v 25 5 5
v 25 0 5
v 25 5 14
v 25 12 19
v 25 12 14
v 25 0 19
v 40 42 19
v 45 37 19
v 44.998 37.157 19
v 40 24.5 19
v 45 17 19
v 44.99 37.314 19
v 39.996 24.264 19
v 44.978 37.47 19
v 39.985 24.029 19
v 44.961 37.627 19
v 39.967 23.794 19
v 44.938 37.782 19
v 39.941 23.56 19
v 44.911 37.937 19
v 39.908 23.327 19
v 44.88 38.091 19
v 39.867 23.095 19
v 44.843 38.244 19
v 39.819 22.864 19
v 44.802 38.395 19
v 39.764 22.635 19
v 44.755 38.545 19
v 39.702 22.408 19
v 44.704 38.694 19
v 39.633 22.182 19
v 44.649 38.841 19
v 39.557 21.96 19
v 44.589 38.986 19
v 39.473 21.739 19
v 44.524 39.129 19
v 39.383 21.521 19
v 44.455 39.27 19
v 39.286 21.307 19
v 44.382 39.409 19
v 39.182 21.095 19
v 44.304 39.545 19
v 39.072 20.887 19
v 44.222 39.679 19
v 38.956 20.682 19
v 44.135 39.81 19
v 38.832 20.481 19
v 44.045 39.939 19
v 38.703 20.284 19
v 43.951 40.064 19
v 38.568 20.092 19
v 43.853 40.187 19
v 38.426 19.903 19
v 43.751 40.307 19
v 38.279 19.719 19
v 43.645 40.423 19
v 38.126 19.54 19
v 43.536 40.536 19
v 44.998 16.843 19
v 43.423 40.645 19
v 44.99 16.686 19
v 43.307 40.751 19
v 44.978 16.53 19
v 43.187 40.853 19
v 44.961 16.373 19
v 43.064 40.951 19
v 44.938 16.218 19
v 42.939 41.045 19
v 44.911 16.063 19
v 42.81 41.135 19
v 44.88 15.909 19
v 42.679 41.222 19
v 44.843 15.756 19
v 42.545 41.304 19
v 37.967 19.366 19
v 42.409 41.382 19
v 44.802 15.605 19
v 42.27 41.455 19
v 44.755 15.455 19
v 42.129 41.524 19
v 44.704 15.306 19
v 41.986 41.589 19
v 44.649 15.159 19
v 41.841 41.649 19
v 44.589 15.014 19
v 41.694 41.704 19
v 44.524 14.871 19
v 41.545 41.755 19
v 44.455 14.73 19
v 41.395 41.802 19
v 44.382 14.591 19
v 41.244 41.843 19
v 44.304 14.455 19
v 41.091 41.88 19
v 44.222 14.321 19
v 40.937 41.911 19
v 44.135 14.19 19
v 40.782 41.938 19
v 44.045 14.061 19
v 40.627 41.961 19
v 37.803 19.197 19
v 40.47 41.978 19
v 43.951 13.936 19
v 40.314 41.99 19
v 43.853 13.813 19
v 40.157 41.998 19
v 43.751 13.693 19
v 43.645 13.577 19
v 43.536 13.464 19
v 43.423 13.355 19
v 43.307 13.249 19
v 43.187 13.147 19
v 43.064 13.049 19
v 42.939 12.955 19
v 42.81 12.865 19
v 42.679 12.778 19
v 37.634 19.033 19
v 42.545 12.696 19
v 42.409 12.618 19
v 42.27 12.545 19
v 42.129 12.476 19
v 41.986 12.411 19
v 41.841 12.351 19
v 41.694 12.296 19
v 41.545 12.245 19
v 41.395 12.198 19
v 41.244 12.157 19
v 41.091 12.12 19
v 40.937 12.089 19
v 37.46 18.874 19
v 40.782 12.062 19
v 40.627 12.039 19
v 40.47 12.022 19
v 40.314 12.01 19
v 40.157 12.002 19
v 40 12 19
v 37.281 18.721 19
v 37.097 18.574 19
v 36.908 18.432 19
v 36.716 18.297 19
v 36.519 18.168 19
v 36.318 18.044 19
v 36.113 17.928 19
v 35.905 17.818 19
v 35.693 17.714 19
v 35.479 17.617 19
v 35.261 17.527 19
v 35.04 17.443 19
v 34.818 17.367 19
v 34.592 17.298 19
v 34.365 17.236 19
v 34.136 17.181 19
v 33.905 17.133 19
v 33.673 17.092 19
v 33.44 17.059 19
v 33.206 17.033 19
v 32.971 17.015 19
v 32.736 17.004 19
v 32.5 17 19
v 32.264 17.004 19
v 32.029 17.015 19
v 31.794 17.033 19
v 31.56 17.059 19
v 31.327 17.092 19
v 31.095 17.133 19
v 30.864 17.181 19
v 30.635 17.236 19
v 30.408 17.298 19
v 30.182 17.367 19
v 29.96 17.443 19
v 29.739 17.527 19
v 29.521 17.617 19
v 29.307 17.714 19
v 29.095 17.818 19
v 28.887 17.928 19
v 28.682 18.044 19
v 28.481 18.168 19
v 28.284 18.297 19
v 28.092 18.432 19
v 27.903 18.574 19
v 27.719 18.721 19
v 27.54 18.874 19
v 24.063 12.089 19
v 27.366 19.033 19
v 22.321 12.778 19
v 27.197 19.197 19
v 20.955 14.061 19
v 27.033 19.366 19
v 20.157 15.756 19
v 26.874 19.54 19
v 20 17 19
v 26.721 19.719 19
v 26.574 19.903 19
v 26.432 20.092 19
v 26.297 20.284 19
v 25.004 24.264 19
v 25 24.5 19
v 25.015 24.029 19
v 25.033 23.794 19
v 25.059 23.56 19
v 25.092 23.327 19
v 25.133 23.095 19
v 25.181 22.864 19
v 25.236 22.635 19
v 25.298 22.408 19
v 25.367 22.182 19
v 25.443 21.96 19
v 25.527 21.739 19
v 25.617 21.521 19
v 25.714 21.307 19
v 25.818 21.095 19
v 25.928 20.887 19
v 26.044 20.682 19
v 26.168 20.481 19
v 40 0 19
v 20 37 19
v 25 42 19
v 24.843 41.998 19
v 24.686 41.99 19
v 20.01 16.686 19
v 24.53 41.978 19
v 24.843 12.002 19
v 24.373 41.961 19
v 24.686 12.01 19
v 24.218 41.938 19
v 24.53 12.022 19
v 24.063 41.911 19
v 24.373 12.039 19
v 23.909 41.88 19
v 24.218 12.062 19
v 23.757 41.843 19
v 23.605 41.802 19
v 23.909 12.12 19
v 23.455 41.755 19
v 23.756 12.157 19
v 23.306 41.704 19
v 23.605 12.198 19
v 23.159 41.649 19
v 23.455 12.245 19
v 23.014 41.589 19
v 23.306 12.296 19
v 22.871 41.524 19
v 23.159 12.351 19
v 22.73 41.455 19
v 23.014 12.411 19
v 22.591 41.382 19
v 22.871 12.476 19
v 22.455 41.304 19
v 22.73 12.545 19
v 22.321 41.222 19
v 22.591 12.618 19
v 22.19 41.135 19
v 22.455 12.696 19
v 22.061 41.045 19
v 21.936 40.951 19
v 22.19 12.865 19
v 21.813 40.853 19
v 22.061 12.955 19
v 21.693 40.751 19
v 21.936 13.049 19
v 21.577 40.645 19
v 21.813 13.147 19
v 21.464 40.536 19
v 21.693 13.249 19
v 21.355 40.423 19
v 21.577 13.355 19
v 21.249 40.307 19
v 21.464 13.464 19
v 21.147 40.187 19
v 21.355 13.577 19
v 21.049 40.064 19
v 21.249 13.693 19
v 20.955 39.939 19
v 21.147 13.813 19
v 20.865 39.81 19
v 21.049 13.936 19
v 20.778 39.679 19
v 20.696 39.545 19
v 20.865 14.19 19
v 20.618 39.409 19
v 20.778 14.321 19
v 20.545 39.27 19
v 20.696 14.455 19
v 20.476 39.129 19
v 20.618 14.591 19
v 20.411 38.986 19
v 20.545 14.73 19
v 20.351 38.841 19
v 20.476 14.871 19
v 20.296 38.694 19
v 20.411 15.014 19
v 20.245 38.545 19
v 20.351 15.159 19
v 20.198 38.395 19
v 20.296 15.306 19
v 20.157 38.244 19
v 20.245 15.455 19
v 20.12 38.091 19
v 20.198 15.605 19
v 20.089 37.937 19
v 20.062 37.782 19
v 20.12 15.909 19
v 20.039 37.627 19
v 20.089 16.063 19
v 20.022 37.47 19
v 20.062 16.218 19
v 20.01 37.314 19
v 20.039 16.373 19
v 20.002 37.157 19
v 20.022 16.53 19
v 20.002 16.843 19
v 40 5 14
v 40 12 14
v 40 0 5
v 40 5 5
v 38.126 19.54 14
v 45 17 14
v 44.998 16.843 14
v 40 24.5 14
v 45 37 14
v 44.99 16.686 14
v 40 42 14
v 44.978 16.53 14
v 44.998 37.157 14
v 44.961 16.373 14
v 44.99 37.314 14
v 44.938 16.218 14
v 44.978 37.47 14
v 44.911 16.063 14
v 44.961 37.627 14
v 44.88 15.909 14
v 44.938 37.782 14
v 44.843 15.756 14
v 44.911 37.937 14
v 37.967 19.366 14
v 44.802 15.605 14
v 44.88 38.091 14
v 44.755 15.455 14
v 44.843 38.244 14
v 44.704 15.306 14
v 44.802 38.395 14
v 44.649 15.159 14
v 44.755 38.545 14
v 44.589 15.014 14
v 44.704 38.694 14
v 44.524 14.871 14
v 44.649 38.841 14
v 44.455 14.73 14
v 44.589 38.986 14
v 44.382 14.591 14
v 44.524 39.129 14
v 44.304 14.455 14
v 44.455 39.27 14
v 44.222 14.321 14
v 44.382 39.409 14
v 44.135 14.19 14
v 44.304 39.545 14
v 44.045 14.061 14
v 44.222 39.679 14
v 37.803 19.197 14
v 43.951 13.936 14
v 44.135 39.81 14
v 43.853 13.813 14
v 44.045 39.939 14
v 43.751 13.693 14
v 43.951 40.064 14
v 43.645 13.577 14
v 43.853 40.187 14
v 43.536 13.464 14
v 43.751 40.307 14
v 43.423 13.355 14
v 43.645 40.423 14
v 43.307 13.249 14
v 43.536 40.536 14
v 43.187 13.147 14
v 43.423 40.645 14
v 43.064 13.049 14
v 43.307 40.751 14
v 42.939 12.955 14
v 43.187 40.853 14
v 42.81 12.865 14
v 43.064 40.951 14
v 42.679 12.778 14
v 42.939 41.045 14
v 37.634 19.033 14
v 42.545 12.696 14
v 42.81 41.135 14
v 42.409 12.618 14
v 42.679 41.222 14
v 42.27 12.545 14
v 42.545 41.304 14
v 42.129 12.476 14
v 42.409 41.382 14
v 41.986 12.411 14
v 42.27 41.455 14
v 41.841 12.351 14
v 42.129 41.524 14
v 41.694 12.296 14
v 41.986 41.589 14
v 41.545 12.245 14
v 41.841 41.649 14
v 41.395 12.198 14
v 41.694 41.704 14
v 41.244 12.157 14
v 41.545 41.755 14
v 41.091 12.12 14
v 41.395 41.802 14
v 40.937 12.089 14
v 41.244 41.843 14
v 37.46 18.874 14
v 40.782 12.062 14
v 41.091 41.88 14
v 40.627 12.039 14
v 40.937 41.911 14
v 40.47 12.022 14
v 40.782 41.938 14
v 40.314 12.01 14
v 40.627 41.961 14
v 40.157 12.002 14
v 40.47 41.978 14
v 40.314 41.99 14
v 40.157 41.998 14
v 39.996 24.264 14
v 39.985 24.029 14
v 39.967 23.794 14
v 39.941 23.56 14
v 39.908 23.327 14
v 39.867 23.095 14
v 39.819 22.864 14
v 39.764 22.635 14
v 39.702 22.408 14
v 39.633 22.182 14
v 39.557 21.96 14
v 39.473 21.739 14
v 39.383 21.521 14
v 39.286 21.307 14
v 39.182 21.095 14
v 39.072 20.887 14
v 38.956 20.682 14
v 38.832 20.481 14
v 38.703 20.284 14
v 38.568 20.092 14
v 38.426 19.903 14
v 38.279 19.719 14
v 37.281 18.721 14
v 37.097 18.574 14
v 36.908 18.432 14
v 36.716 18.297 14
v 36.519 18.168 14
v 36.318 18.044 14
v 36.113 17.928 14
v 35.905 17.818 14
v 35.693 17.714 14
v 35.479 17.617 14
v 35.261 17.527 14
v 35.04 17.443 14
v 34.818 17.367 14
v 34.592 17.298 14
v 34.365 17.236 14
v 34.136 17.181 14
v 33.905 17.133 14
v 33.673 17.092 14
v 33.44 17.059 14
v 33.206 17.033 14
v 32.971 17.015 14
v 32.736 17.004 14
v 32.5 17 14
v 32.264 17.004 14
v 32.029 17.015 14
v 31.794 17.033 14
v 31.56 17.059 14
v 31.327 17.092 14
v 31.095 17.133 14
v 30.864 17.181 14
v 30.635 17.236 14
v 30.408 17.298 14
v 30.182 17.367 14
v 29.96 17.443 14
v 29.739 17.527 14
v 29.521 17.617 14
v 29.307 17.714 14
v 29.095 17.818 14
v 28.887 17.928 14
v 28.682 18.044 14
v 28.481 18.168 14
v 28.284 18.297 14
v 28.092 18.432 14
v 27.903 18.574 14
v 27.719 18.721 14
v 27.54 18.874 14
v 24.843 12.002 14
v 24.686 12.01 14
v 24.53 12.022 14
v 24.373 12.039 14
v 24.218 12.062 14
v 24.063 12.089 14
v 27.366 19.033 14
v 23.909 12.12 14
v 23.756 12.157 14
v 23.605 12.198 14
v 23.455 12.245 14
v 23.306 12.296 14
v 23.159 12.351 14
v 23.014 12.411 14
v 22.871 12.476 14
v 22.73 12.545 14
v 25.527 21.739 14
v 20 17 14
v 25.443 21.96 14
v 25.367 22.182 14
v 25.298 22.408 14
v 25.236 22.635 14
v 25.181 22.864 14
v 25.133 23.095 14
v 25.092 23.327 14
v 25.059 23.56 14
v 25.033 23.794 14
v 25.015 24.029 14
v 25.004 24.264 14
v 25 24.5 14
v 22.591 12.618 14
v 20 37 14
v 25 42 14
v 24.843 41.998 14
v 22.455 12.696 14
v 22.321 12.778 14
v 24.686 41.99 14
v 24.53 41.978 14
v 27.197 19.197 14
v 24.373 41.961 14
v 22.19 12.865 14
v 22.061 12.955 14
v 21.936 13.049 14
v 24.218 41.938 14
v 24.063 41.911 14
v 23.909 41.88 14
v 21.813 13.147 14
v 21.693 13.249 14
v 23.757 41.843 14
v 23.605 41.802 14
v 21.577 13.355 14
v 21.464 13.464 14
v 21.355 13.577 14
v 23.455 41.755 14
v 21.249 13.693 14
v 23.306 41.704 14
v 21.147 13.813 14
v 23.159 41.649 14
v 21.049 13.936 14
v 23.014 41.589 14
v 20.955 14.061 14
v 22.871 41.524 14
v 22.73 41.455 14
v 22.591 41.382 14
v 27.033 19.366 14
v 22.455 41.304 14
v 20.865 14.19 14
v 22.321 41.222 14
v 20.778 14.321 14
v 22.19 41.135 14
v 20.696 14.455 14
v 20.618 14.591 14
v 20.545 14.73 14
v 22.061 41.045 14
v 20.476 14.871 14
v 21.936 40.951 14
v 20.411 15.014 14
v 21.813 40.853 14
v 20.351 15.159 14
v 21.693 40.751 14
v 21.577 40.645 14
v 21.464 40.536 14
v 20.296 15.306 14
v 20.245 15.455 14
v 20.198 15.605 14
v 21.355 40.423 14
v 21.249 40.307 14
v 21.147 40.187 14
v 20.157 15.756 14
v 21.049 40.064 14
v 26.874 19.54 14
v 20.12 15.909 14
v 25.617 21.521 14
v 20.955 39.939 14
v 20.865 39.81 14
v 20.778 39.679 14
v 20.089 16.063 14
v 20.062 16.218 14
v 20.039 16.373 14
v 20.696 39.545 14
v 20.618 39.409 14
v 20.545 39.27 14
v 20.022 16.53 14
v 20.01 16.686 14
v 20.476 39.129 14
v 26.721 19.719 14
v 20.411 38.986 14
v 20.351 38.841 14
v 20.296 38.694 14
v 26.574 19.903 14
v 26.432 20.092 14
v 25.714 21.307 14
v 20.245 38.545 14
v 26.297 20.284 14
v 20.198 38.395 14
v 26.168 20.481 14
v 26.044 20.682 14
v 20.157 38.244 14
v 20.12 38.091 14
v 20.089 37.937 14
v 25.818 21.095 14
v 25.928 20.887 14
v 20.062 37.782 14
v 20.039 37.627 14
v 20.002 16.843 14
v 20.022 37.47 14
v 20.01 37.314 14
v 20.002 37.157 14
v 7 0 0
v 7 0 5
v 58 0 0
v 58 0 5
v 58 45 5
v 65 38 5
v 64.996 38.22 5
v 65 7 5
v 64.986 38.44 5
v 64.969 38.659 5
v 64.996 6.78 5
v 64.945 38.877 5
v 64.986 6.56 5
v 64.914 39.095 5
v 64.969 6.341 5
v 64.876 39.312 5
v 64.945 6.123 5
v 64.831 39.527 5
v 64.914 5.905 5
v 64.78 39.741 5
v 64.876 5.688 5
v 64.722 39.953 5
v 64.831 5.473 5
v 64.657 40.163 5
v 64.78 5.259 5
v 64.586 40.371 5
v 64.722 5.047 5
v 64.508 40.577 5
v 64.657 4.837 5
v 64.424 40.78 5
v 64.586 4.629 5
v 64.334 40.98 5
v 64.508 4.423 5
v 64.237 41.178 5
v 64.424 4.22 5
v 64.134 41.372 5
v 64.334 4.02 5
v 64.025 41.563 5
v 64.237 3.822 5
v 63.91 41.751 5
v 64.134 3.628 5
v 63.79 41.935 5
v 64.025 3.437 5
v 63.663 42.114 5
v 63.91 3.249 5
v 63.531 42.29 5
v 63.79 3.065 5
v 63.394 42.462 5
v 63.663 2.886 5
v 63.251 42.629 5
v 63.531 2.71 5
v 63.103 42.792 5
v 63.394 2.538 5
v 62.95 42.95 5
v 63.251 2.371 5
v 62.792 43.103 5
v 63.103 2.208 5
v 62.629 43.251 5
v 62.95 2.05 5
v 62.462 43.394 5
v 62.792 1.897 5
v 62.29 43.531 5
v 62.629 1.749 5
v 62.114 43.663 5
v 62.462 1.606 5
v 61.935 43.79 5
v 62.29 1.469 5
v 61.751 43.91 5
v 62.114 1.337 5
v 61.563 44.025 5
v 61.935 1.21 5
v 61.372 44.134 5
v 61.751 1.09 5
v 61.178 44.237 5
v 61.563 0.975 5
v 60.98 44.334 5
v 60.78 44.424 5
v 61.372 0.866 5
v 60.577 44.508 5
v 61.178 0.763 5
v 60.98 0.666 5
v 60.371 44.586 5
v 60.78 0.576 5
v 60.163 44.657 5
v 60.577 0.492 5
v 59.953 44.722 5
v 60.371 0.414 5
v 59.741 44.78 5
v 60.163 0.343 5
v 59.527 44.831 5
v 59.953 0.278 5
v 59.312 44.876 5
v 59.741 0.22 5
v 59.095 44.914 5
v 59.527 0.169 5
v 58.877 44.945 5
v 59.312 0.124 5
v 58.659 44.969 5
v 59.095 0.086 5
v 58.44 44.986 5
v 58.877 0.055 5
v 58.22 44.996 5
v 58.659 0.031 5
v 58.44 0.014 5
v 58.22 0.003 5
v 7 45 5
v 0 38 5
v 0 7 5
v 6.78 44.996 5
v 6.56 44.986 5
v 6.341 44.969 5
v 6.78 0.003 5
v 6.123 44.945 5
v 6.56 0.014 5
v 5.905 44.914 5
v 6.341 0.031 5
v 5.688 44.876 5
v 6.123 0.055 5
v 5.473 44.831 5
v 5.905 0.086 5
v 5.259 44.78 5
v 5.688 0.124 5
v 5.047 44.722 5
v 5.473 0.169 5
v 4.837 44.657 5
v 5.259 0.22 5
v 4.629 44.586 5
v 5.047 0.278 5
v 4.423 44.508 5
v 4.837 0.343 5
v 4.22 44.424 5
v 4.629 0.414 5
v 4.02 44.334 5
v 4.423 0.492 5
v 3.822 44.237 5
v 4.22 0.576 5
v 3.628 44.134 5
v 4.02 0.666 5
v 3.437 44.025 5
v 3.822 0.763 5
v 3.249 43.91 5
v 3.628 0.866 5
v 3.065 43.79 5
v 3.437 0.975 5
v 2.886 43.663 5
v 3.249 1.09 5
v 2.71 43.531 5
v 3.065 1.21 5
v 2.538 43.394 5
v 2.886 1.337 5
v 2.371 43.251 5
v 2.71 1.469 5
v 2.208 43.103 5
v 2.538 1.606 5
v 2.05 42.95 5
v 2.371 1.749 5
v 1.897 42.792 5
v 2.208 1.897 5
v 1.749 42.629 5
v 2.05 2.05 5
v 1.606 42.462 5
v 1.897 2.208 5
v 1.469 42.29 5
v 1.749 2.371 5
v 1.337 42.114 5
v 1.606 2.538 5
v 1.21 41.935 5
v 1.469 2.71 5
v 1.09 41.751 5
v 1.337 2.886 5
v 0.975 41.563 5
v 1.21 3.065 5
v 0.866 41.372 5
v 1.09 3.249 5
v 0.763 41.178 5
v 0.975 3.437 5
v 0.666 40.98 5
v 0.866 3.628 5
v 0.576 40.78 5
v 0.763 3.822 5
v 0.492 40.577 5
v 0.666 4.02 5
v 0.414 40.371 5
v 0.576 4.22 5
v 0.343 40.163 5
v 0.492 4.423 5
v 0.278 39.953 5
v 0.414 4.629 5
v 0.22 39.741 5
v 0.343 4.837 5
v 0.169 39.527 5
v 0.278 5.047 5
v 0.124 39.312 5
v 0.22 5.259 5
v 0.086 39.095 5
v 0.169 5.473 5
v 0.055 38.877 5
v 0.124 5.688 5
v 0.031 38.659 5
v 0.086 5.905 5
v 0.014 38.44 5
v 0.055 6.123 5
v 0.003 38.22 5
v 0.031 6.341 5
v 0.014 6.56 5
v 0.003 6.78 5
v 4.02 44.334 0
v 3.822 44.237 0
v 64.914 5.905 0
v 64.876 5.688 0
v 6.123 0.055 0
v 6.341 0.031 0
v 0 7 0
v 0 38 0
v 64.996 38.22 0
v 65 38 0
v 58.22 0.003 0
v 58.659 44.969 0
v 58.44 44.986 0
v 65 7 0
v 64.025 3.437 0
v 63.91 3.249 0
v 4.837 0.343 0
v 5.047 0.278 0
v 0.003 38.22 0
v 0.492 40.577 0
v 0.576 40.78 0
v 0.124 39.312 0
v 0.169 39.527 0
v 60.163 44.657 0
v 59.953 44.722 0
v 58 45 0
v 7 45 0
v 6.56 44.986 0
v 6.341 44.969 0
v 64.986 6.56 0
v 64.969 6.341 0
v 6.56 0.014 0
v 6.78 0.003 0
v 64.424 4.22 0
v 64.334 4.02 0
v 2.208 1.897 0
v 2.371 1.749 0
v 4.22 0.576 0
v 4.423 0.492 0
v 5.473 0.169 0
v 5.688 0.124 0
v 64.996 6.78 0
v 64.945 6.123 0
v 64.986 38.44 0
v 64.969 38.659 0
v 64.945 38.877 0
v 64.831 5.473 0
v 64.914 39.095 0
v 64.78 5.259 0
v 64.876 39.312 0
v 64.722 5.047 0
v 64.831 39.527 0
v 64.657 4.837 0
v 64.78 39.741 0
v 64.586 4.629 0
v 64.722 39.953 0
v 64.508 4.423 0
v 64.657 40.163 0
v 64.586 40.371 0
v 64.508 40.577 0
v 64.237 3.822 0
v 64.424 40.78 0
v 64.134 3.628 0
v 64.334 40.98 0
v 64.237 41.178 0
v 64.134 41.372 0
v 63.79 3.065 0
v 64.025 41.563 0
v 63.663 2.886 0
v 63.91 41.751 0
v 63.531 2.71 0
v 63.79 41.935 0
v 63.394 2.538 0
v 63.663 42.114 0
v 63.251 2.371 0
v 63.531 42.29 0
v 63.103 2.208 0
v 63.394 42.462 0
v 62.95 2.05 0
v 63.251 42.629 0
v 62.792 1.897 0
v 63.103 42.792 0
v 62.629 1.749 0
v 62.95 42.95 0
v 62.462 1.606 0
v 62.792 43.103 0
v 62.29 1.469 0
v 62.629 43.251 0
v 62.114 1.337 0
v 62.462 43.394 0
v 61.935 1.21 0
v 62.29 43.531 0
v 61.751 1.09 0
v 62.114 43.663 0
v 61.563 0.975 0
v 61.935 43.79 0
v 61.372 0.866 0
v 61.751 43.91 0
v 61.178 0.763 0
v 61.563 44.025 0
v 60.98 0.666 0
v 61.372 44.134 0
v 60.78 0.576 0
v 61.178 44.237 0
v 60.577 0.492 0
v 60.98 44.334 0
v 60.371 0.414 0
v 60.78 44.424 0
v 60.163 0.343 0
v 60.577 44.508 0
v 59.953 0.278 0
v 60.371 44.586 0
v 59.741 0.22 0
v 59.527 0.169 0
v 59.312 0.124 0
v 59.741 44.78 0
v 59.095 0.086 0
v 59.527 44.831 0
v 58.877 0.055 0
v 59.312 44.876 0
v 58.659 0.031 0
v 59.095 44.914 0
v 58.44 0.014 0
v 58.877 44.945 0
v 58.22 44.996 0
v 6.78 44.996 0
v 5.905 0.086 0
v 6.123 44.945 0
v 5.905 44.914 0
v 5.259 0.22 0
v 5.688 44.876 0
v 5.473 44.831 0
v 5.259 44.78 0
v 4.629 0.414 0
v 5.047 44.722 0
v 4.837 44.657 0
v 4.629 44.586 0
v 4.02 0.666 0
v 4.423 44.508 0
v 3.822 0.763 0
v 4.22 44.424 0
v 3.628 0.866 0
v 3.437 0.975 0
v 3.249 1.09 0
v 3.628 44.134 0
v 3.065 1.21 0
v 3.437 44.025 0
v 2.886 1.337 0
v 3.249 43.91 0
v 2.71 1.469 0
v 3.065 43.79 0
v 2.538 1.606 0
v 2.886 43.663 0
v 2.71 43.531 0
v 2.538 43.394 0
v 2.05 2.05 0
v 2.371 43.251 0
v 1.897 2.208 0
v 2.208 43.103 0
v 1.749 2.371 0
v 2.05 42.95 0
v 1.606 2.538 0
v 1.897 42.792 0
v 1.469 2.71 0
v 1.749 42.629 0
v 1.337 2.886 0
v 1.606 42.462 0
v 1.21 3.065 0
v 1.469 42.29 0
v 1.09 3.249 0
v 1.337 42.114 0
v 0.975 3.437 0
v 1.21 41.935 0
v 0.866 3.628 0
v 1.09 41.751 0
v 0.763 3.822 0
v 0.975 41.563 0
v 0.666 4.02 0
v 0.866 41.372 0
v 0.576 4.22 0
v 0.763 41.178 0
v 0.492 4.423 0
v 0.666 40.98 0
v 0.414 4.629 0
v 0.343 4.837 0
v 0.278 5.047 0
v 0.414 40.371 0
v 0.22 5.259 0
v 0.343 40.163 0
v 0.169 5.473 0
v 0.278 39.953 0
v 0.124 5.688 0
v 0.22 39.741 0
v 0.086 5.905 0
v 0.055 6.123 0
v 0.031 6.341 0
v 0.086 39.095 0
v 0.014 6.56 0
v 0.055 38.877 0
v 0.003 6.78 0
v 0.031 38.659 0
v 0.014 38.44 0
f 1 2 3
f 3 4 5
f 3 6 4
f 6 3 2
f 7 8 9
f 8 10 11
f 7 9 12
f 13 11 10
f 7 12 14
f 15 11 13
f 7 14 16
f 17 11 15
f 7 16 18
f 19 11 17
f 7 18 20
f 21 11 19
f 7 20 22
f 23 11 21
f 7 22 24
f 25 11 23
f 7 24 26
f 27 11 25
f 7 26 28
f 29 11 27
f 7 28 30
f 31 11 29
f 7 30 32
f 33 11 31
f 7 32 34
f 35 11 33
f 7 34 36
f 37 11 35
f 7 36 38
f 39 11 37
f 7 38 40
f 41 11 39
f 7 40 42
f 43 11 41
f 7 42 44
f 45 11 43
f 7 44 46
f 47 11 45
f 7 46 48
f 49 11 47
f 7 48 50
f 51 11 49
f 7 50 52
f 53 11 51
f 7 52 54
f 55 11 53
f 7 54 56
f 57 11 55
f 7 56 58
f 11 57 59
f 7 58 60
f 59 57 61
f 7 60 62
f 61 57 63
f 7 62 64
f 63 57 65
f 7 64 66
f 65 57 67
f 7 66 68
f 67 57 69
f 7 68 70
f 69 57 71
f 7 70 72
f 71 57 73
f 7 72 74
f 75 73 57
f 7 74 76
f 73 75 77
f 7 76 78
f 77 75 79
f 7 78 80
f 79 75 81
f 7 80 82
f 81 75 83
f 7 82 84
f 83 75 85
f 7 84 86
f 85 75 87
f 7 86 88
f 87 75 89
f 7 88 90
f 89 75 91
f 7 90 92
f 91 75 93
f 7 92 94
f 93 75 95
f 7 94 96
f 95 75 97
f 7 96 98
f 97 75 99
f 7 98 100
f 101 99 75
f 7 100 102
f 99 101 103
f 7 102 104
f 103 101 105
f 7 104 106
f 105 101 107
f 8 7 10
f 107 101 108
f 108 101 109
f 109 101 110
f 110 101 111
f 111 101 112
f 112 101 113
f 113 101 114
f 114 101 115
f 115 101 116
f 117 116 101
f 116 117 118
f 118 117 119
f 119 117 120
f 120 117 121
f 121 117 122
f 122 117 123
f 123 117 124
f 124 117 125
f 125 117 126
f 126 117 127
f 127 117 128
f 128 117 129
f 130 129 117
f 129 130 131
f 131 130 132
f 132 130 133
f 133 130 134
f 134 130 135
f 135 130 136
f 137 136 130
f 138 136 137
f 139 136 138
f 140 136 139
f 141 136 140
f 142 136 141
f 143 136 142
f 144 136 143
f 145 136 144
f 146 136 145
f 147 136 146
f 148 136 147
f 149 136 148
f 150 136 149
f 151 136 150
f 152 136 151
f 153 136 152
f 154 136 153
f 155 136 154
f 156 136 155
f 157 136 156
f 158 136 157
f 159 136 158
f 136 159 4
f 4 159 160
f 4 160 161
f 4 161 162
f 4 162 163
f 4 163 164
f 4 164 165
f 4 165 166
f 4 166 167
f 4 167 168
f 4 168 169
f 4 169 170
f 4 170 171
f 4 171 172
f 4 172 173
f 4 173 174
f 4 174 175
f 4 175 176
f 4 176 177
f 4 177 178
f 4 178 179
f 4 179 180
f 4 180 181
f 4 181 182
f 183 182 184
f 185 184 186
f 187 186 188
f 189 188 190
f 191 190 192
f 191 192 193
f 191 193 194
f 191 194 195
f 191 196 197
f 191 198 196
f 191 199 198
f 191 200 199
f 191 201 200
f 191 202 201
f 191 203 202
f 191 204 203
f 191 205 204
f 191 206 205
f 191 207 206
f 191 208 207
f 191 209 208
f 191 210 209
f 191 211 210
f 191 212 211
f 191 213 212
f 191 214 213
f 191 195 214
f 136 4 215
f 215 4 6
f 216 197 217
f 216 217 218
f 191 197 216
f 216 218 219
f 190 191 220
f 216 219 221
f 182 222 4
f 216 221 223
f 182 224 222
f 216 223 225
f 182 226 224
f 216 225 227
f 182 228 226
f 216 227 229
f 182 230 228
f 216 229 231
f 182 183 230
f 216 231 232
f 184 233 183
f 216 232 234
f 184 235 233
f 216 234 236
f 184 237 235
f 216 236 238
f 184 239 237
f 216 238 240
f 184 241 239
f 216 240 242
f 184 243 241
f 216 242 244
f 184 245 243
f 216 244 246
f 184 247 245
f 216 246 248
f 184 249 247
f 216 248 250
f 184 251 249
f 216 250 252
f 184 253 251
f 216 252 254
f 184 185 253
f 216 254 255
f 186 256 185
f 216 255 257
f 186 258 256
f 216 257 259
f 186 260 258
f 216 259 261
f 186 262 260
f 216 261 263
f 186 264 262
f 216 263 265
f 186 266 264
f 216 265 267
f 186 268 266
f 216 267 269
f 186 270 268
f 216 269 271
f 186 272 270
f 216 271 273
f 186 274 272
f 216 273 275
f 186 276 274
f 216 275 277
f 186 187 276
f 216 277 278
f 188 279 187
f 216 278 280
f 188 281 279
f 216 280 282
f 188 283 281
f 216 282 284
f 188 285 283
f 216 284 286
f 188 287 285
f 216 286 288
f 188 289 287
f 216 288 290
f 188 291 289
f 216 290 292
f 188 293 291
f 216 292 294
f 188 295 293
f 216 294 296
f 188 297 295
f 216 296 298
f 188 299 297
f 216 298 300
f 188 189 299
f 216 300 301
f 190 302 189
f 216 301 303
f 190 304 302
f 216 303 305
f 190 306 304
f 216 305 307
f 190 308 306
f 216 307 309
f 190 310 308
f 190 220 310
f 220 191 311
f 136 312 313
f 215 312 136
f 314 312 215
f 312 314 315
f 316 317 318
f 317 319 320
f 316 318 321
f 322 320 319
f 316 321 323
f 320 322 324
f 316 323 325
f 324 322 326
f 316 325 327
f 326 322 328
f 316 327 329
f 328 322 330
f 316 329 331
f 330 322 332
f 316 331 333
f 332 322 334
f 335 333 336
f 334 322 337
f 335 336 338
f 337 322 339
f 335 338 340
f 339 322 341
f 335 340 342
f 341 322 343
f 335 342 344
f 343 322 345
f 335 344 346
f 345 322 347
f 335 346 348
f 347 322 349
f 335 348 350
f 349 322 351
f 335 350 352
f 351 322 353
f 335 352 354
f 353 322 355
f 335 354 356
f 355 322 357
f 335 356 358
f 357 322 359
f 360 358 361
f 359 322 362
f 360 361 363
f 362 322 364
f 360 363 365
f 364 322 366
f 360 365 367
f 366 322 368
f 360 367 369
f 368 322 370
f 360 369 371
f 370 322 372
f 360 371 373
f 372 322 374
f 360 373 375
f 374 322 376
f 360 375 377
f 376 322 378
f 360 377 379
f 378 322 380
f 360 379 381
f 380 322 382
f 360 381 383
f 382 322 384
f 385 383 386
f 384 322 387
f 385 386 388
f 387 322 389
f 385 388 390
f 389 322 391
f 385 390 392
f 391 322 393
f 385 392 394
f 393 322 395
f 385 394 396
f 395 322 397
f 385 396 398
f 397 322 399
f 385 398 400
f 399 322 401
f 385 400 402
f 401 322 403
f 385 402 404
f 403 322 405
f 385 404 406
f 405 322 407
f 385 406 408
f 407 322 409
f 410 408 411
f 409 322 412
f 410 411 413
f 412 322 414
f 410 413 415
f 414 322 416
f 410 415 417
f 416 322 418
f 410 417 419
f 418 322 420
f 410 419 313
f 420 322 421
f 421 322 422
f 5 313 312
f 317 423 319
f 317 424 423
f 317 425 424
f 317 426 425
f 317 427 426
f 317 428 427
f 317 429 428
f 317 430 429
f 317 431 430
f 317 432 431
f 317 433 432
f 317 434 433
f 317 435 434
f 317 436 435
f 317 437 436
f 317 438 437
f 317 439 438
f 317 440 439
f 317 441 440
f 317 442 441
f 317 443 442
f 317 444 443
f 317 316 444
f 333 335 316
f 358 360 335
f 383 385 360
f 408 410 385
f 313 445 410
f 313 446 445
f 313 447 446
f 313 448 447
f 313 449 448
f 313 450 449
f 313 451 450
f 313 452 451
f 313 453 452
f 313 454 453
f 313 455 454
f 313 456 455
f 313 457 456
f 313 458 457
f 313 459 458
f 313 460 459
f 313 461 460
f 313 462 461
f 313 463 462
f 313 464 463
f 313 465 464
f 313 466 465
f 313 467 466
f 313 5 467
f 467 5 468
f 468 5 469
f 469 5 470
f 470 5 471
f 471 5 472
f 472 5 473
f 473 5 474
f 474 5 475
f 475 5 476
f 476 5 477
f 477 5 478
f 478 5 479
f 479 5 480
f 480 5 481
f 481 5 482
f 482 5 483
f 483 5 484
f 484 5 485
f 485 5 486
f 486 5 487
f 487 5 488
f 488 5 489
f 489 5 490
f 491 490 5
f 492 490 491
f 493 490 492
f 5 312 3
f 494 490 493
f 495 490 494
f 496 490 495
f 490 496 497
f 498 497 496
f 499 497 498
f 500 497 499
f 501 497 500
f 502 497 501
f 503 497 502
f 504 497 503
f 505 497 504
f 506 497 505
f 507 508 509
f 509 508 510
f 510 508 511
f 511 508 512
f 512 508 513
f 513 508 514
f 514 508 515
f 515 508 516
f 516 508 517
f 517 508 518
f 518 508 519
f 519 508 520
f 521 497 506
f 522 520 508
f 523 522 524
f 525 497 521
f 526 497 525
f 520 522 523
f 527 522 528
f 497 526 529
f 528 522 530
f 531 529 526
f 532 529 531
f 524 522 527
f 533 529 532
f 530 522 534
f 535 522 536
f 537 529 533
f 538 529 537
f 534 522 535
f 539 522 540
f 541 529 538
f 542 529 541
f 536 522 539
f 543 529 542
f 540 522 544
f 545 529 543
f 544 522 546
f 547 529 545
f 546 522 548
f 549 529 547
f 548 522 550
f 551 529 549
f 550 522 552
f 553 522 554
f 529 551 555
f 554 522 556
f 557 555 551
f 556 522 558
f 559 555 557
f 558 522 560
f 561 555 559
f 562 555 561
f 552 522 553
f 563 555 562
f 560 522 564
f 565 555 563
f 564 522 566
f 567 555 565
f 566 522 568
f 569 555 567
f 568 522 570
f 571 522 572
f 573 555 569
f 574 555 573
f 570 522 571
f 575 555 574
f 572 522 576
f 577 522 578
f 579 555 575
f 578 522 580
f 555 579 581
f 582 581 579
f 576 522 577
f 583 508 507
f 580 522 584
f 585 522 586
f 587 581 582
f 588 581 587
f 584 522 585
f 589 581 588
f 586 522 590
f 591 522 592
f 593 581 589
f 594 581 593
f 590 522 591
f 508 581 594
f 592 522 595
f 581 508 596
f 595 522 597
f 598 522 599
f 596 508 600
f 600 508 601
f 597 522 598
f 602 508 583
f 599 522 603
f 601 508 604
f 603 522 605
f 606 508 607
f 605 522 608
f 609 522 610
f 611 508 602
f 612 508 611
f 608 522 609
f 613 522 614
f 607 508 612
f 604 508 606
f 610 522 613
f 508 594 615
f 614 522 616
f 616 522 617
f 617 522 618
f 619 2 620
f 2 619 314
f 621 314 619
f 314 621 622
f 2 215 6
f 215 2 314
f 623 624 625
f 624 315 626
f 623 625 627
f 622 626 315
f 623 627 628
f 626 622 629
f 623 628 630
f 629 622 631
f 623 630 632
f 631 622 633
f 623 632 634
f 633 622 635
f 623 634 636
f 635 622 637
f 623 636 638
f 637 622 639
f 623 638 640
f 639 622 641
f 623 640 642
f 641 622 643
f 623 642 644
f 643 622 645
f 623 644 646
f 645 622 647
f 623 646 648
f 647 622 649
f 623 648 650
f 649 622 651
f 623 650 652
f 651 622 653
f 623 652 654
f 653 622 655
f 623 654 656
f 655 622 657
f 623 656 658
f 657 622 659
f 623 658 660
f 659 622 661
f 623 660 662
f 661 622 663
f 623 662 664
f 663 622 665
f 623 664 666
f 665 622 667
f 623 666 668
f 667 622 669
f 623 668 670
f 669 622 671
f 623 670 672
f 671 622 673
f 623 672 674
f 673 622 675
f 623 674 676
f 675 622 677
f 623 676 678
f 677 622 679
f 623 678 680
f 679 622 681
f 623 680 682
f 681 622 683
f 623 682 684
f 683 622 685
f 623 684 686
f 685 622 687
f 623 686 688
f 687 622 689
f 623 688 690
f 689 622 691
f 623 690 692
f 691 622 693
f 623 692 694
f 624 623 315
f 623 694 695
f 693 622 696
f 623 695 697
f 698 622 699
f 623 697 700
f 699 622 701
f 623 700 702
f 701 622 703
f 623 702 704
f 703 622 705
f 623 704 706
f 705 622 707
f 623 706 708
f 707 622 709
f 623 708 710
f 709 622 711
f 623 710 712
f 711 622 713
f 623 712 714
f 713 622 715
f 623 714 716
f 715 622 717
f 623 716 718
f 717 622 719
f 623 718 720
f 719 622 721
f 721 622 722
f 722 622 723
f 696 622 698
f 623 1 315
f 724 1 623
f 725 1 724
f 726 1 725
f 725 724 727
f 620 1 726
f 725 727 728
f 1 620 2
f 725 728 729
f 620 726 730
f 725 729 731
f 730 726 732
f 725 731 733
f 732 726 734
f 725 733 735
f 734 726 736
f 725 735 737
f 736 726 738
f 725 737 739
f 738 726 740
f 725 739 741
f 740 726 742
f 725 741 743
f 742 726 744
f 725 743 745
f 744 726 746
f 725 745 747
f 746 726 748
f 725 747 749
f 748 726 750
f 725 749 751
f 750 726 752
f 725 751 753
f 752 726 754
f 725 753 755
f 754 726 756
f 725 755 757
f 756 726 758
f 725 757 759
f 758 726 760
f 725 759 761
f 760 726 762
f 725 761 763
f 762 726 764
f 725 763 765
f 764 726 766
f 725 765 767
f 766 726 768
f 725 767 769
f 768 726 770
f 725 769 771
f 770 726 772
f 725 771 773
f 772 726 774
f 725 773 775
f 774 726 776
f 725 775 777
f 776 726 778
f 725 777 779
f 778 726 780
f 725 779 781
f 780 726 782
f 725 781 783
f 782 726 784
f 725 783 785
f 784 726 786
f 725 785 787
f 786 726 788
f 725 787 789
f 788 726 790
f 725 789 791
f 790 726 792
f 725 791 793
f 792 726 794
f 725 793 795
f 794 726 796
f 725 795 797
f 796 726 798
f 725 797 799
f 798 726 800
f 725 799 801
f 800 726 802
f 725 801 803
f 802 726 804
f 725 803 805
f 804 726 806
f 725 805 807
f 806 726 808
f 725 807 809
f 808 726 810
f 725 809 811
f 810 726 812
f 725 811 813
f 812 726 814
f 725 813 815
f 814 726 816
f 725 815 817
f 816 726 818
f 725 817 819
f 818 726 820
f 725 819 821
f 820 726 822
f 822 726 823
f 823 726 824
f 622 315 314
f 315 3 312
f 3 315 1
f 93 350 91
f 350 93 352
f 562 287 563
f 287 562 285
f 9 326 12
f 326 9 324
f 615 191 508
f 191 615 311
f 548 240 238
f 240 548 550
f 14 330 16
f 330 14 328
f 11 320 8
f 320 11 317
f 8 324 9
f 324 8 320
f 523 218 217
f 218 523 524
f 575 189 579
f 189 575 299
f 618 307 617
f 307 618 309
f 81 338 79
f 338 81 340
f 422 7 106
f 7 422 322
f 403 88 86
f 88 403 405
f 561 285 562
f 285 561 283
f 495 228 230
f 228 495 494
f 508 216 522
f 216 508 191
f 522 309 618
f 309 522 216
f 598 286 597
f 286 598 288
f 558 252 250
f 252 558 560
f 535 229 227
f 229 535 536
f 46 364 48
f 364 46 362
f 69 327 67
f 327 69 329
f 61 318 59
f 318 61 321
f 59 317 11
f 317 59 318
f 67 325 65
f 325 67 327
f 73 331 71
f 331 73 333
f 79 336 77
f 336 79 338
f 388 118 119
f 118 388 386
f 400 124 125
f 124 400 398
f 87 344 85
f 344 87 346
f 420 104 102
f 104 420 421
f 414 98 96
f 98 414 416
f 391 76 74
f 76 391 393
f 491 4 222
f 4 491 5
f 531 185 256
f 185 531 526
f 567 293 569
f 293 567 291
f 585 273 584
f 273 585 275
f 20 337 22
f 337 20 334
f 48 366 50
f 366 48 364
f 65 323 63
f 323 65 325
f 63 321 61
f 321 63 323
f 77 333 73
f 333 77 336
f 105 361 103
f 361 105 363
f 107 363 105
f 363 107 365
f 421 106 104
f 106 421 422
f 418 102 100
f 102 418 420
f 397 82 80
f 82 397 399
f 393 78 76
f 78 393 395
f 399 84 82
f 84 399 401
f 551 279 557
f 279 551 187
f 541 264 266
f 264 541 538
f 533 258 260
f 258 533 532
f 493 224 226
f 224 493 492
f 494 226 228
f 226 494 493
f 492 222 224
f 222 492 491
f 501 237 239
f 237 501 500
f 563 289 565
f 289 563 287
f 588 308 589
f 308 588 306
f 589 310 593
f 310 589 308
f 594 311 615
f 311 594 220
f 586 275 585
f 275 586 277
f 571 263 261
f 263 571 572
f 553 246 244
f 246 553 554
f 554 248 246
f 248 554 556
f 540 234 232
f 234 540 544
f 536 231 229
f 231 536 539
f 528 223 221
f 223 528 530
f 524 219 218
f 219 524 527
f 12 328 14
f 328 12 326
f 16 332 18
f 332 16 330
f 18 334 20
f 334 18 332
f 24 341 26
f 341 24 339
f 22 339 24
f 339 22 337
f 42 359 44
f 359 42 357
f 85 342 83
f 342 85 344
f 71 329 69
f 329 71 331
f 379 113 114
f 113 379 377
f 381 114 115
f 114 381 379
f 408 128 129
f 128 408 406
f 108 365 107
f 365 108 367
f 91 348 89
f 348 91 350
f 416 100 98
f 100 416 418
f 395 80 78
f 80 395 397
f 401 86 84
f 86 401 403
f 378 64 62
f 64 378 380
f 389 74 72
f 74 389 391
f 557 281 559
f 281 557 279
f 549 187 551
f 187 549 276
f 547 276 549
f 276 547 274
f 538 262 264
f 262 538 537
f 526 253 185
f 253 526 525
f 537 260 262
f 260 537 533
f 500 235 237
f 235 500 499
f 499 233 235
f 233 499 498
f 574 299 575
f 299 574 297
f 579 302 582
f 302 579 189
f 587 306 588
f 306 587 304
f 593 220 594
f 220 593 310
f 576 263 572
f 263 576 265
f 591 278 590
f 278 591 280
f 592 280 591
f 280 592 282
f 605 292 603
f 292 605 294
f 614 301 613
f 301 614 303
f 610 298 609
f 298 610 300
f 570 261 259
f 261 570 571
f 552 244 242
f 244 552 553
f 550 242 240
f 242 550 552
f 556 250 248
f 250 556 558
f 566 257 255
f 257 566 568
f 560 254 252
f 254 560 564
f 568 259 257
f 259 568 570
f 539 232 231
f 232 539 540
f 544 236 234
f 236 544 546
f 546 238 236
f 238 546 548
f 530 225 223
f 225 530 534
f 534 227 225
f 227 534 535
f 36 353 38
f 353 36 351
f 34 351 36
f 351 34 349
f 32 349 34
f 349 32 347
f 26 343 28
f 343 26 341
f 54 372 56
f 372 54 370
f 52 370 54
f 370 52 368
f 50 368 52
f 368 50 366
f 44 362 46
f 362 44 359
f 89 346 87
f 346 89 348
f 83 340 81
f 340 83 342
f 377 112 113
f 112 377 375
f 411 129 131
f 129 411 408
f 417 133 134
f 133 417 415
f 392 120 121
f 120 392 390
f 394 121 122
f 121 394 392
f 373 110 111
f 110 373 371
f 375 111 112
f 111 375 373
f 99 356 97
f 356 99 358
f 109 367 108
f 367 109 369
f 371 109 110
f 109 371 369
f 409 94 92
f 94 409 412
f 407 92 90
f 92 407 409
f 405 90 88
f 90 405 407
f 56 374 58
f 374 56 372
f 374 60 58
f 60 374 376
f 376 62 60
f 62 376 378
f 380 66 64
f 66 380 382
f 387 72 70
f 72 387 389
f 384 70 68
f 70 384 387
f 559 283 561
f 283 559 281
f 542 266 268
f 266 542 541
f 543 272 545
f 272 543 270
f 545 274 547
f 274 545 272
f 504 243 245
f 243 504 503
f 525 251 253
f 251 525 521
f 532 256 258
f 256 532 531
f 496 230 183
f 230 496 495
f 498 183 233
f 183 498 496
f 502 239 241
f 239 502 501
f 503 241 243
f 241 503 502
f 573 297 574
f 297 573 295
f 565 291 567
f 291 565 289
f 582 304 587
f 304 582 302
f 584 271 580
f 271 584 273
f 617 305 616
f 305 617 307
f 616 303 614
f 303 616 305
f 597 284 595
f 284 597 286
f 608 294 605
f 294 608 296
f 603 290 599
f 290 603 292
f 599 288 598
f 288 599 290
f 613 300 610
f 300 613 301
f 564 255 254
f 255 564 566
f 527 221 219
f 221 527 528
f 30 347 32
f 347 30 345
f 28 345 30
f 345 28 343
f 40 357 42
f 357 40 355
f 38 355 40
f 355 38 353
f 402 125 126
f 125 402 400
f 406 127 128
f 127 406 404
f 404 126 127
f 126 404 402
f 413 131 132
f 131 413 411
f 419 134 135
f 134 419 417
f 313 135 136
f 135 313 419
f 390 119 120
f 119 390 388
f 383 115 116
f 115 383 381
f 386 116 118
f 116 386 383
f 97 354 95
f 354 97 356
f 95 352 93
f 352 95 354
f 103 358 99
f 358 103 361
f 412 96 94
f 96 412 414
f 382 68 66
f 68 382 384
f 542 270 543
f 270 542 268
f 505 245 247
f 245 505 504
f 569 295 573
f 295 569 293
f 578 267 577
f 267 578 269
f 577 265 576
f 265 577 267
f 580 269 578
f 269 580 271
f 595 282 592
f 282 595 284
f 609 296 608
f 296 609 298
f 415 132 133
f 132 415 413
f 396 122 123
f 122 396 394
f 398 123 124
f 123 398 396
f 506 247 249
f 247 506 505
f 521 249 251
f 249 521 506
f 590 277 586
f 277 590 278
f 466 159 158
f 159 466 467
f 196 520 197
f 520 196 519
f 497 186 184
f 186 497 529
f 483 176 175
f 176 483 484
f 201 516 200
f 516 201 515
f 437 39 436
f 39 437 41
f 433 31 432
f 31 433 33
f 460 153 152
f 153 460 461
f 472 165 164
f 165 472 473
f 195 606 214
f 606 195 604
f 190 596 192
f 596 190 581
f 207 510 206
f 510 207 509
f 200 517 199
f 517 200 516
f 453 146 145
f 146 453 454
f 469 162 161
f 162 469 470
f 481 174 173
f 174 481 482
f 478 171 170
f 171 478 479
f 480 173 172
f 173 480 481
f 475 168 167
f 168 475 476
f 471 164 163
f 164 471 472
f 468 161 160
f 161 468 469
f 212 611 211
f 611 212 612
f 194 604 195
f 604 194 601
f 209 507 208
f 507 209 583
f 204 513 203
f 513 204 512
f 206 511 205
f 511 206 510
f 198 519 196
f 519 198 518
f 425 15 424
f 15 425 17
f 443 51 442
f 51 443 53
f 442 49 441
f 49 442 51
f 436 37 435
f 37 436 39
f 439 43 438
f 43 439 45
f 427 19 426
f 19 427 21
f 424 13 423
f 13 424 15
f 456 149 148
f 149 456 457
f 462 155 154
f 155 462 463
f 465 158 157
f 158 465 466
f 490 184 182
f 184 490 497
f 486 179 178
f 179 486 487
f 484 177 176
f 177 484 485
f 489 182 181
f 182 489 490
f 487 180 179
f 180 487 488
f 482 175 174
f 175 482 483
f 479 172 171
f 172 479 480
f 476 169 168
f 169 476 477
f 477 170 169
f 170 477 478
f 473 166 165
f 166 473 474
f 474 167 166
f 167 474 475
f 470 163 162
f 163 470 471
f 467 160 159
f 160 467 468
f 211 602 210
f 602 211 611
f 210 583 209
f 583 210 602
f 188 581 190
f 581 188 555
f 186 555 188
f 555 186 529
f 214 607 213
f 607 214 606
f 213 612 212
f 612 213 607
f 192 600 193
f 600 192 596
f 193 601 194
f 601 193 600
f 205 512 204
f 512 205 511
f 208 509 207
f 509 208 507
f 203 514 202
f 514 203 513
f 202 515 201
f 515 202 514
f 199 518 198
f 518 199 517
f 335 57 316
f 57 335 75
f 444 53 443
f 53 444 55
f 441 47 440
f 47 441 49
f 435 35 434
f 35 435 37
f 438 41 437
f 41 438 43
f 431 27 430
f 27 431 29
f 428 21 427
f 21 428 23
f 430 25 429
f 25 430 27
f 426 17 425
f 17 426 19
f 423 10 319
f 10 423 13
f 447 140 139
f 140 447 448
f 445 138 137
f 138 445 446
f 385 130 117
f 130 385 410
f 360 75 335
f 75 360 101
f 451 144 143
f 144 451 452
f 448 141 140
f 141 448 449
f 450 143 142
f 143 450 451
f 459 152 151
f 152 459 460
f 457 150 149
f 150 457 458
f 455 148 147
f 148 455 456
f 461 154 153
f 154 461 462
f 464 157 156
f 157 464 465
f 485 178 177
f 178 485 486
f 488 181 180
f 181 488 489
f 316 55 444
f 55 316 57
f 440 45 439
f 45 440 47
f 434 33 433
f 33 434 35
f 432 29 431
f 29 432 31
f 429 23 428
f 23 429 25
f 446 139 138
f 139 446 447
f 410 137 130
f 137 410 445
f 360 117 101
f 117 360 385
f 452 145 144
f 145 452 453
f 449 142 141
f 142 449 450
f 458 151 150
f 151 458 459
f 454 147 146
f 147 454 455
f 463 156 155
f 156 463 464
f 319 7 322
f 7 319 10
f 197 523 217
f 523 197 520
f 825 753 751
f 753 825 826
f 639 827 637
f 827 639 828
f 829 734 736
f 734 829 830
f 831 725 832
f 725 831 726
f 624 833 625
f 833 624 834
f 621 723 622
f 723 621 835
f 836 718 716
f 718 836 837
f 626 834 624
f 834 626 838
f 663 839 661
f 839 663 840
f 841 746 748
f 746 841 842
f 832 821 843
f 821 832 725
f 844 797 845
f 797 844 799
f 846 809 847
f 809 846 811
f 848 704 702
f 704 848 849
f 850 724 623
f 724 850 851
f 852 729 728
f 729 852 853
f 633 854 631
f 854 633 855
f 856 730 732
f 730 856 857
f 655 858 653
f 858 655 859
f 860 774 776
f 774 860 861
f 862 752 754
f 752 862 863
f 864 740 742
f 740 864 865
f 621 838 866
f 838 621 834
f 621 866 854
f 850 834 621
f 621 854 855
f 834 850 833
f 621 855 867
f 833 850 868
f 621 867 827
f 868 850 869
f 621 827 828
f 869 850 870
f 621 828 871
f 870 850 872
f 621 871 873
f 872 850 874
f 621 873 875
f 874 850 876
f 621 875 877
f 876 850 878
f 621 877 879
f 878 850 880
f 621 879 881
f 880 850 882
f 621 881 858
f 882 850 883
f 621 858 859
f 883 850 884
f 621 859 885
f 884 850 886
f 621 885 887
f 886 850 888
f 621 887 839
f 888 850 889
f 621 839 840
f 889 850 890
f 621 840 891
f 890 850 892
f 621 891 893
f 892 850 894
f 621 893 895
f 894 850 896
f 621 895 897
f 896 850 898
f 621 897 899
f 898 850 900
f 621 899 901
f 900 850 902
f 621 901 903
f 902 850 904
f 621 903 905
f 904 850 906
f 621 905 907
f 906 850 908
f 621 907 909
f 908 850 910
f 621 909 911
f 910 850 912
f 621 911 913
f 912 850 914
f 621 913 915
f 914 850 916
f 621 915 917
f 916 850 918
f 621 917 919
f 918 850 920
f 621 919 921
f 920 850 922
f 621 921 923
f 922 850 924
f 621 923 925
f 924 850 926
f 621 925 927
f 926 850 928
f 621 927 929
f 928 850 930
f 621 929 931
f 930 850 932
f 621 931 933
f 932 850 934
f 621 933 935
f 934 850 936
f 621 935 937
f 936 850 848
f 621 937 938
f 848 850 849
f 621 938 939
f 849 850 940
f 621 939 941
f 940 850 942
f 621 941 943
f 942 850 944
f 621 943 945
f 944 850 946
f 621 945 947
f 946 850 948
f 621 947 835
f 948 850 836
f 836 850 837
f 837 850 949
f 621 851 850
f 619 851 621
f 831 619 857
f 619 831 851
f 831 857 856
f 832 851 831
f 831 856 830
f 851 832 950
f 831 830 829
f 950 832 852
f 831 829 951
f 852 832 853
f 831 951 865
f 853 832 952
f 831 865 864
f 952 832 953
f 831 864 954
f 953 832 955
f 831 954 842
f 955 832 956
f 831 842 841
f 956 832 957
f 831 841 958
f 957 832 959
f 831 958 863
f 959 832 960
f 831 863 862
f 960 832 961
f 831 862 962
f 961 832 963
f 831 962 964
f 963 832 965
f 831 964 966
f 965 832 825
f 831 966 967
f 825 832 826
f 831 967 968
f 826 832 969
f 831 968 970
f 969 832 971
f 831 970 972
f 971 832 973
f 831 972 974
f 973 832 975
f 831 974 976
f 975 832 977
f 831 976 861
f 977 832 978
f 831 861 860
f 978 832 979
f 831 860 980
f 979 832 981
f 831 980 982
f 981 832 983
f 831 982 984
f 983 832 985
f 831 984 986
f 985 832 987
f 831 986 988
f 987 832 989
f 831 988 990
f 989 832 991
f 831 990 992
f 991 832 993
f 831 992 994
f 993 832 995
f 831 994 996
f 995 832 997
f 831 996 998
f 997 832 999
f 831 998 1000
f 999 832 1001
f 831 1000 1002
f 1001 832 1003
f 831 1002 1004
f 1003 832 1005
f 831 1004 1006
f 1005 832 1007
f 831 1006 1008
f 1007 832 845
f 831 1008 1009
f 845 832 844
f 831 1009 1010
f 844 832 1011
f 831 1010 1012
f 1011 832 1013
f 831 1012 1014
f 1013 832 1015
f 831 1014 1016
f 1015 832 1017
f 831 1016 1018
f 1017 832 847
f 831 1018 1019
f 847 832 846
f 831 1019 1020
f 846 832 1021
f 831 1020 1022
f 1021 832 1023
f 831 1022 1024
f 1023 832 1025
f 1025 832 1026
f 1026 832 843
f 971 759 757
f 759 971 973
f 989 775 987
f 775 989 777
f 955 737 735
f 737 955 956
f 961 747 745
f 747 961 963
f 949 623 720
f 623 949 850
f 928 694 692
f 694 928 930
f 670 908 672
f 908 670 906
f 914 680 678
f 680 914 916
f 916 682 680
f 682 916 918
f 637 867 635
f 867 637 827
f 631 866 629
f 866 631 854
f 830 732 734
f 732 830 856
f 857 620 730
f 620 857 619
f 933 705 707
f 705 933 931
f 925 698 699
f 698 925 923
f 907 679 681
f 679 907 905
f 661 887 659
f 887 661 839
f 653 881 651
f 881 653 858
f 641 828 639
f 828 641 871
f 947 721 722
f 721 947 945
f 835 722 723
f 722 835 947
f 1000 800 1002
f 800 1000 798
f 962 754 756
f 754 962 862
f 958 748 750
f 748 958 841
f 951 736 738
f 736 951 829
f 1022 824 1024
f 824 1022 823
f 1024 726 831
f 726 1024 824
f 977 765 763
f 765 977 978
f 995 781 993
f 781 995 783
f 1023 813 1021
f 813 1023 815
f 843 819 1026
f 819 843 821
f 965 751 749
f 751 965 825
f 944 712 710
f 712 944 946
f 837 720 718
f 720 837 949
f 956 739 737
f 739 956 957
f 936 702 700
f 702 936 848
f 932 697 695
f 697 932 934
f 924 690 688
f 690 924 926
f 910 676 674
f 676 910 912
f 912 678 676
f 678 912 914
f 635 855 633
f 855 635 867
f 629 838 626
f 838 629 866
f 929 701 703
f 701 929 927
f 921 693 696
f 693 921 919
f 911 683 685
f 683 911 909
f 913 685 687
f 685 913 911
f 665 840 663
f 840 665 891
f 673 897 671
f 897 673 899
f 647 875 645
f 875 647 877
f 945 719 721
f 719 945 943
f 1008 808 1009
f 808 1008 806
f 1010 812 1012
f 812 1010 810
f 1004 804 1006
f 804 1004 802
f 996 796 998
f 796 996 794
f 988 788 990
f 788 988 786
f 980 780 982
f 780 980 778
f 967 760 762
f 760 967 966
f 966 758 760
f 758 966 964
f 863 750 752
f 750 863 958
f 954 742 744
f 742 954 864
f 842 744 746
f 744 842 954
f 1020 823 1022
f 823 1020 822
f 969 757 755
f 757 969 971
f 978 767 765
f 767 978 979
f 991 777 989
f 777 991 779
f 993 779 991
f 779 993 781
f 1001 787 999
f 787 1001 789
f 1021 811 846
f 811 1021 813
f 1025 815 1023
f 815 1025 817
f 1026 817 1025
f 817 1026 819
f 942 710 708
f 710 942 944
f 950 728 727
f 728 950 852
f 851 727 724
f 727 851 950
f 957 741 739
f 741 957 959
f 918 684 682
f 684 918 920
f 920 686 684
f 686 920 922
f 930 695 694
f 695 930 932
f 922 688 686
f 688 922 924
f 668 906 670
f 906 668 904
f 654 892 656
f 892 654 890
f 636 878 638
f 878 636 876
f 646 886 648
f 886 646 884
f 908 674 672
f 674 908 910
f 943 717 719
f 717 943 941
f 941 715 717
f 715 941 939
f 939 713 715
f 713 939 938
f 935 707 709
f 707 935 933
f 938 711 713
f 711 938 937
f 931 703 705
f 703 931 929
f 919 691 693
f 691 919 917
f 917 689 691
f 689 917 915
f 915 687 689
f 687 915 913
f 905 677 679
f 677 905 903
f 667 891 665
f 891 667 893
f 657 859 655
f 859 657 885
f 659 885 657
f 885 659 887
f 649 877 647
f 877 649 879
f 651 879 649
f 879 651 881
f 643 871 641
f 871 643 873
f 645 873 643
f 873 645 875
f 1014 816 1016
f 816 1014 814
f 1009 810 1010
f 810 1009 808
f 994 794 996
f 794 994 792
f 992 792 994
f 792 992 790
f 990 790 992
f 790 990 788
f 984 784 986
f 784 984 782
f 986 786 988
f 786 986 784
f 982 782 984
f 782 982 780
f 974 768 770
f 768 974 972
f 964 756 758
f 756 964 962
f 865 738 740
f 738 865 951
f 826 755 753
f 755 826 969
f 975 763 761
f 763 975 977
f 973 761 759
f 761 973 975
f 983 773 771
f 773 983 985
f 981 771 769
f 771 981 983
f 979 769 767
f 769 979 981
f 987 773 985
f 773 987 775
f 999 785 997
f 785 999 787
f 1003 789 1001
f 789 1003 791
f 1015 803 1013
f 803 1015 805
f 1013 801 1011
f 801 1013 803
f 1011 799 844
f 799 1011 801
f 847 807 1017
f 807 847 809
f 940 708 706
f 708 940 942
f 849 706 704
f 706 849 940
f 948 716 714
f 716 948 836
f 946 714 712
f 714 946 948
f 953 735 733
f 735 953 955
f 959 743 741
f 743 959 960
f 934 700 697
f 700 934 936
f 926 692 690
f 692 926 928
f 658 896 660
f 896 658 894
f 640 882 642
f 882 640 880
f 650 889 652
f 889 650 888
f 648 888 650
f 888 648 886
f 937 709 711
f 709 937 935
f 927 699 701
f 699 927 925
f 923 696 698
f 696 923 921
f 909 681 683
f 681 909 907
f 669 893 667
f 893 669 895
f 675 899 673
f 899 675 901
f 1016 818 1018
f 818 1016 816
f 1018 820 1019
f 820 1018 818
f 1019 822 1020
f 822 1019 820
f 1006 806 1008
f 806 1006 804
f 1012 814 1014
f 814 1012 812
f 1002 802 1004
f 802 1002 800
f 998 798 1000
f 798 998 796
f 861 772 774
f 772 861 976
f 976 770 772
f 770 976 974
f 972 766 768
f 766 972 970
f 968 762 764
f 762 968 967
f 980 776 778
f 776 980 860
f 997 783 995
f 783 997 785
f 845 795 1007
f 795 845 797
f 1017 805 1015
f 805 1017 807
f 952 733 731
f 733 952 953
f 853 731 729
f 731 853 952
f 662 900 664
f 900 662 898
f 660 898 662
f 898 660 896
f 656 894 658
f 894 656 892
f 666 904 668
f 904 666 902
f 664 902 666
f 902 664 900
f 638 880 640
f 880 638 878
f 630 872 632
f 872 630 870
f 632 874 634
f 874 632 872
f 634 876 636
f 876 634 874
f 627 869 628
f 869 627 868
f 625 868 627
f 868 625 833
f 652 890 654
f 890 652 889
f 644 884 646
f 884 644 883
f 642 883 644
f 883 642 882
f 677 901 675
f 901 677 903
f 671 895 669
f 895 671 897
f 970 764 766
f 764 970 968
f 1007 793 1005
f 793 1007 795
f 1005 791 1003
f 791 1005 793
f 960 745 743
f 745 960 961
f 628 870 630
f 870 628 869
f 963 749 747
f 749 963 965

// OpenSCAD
$fn = 200;

thick = 5;
rounded_corners = 7;
base_dim = [65,45];

uradius = 7.5;
uheight = 30;
uwidth = uradius*2+2*thick;
urounded_corners = 5;
offset_from_plate = 9;

module rounded_plate(t, x, y, r) {
    translate([r,r,0])
    hull() {
        cylinder(h=t, r=r);
        translate([x-2*r,0,0])
            cylinder(h=t, r=r);
        translate([x-2*r,y-2*r,0]) cylinder(h=t, r=r);
        translate([0,y-2*r,0]) cylinder(h=t, r=r);
    }
}

module base() {
    rounded_plate(thick, base_dim[0], base_dim[1], rounded_corners);
}

module uhold() {
    difference() {
        rounded_plate(thick,uheight,uwidth,urounded_corners);
        translate([uradius+thick,uwidth/2,-1]) cylinder(h=thick+2, r=uradius);
        translate([thick+uradius,thick,-1]) cube([uheight-thick-uradius+1,2*uradius,thick+2]);
    }
}

module connector() {
    translate([0,0,offset_from_plate]) cube([uwidth-2*urounded_corners,thick+uradius,thick]);
    cube([uwidth-2*urounded_corners,thick,offset_from_plate]);
}

translate([base_dim[0]/2-uwidth/2+2*urounded_corners/2,0/*base_dim[1]/2-thick-uradius*/,thick]) connector();

base();
translate([thick+uradius+base_dim[0]/2,base_dim[1]/2-thick-uradius+2,offset_from_plate+thick]) rotate([0,0,90]) uhold();
